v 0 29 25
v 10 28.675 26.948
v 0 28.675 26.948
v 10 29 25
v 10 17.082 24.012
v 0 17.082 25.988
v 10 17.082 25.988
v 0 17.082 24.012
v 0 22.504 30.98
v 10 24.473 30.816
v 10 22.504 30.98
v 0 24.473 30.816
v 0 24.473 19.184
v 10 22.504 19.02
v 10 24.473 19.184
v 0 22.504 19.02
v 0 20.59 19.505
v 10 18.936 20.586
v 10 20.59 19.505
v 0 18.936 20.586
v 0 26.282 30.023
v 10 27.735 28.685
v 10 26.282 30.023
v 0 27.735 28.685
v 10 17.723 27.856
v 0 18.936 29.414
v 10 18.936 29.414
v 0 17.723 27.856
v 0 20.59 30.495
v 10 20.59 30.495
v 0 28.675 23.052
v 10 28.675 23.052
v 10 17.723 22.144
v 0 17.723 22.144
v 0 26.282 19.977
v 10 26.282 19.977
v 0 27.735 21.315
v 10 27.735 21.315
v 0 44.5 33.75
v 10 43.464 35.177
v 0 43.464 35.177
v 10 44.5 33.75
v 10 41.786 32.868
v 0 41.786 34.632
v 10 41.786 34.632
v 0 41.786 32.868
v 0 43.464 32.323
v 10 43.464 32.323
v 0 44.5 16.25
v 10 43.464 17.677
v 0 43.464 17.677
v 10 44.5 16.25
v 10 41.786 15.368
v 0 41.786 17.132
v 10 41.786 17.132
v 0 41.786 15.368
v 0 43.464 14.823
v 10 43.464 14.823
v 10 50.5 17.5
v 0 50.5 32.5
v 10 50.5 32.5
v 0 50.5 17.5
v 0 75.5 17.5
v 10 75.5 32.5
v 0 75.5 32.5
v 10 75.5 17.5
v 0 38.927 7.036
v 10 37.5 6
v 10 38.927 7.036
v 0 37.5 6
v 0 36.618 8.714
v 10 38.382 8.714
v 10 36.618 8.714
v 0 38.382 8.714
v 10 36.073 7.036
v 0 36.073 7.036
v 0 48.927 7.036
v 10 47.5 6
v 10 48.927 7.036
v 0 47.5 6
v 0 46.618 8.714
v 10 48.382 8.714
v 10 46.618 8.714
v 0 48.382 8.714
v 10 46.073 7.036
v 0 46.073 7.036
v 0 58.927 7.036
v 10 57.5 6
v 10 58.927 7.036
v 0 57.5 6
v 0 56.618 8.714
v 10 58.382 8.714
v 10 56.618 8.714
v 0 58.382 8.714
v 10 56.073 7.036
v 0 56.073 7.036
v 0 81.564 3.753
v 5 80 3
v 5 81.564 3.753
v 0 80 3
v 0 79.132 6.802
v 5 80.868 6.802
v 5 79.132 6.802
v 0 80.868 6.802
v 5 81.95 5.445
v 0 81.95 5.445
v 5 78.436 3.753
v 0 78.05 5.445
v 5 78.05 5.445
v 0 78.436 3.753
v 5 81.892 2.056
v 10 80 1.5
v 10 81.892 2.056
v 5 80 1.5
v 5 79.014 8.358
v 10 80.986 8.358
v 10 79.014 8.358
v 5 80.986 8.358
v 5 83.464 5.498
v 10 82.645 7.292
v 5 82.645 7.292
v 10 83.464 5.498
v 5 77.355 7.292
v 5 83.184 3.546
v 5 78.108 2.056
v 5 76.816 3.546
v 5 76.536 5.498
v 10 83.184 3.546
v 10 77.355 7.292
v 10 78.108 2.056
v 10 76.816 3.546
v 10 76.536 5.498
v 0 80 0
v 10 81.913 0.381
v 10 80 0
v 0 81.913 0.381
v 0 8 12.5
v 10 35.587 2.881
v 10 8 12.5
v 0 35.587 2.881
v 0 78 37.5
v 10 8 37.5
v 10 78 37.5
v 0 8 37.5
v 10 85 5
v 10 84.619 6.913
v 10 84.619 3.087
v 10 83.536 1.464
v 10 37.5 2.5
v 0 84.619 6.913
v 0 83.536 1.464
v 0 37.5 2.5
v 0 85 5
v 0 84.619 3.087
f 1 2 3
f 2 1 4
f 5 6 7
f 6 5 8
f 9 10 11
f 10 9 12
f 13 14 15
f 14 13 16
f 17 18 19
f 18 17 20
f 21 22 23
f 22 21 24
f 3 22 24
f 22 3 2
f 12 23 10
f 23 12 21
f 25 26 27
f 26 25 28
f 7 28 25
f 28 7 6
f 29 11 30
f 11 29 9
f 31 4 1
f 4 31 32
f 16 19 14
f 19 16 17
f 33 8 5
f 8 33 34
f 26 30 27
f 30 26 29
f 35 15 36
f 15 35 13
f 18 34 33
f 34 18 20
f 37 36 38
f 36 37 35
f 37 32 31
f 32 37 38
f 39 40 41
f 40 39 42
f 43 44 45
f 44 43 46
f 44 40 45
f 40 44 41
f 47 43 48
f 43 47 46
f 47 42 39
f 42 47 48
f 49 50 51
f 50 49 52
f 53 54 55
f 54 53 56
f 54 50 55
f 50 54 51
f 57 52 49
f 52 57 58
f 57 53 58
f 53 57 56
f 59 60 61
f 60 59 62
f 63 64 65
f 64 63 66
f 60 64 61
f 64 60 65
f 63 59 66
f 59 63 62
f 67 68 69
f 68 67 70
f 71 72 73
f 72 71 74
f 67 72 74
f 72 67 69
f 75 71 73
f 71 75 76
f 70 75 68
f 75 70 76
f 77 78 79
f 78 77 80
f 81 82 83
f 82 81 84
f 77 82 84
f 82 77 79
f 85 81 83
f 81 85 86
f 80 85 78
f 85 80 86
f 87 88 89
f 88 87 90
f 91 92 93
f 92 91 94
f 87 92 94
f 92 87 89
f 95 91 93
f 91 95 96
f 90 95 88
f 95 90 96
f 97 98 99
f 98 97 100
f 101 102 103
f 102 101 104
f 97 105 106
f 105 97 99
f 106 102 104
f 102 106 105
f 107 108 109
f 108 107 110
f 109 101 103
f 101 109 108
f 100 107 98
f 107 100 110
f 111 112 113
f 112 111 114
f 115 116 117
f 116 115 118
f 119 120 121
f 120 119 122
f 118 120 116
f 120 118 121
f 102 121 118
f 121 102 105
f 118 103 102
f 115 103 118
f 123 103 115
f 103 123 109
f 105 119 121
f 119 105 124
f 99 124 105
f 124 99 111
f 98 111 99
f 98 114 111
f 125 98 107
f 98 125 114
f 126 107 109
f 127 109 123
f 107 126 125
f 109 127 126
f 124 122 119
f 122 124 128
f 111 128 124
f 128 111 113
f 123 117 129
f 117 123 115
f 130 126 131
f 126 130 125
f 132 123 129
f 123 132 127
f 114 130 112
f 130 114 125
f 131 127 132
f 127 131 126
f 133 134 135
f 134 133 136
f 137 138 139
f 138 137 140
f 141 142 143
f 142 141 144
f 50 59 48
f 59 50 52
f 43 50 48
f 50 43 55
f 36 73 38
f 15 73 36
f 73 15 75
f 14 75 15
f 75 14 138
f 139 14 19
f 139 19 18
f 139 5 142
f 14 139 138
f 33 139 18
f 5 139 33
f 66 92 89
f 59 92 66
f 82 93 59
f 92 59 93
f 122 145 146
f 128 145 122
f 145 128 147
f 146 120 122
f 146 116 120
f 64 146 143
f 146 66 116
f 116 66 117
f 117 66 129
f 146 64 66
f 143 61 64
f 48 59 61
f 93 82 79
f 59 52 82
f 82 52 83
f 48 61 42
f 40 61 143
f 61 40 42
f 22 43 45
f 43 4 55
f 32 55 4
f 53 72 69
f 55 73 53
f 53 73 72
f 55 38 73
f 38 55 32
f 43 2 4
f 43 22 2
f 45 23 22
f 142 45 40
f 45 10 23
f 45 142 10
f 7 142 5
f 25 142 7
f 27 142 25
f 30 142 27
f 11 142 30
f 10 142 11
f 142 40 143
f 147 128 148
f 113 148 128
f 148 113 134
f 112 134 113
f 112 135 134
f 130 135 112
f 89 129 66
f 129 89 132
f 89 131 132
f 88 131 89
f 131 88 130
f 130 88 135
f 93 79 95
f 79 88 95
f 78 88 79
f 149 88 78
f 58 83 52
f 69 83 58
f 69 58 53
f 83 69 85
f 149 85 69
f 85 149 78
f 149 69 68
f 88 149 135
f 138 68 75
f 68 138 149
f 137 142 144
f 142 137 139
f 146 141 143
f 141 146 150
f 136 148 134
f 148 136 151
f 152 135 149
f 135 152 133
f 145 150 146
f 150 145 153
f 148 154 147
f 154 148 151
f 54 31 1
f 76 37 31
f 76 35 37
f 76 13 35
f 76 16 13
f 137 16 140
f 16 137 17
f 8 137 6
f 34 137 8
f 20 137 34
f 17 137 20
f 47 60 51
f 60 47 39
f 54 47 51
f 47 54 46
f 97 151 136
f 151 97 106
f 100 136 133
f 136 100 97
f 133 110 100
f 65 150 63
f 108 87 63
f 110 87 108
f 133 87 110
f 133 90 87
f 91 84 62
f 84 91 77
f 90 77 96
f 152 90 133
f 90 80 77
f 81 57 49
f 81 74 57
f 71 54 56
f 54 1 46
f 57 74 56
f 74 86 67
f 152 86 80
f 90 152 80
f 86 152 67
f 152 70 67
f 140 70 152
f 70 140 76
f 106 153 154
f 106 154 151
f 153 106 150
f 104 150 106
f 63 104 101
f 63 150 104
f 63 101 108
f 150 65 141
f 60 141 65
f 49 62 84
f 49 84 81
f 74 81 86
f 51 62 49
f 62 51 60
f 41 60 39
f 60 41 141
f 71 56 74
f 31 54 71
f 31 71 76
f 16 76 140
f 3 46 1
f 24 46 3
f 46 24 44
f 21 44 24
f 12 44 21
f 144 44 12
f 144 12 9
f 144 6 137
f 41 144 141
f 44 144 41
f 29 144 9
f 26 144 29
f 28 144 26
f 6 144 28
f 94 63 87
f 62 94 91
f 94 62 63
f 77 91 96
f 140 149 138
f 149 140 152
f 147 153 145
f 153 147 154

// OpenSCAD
module articulated_base() {
	difference() {
		union() {
			hull() {
				cube([120, 105, 10]);
				translate([0, 0, 35])
					cube([120, 70, 10]);
			}
		}

		translate([4, 4, -0.1])
			cube([112, 105, 50]);

		#rotate([0, 90, 0]) {
			translate([-5, 100])
				cylinder(d = 4, h = 125);
			translate([-30, 20])
				cylinder(d = 7, h = 125);
			for(offset = [-17.5/2, 17.5/2])
				translate([offset - 30, 40])
					cylinder(d = 3, h = 125);

			for(x = [7.5:10:17.5])
				for(y = [7.5:10:87.5])
					translate([-x, y])
						cylinder(d = 3, h = 125);
		}

		for(z = [7.5:10:37.5])
			for(x = [5:10:120])
				translate([x, 0, z])
					rotate([-90, 0, 0])
						cylinder(d = 3, h = 5);
		
	}
}

module bar() {
	difference() {
		cube([130, 20, 5]);

		for(x = [5:10:145])
			for(y = [5:10:55])
				translate([x, y, z])
					cylinder(d = 3, h = 10);
	}
}

module sidePiece() {
	difference() {
		union() {
			hull() {
				translate([0, 100-20, 5]) 
					rotate([0, 90, 0])
						cylinder(d = 10, h = 10);
				translate([0, 5+3, -25/2 + 30 - 5])
					cube([10, 70, 25]);

				translate([0, 37.5, 7.5]) 
					rotate([0, 90, 0])
						cylinder(d = 10, h = 10);
			}
		}

		rotate([0, 90, 0]) {
			translate([-5, 100-20])
				cylinder(d = 4, h = 125);
			translate([-5, 100-20, 5])
				cylinder(d = 7, h = 6);
			for(y = [37.5:10:57.5])
				translate([-7.5, y])
					cylinder(d = 3, h = 125);
		}

		#translate([-1, 5+3, 30 - 5])
			rotate([90, 0, 90])
				union() {
					translate([15, 0])
						cylinder(d = 12, h = 12);

					translate([15+20, 17.5/2])
						cylinder(d = 3, h = 12);
					translate([15+20, -17.5/2])
						cylinder(d = 3, h = 12);

					translate([15+20+7.5, -15/2])
						cube([25, 15, 12]);
				}
	}
}

//bar();
sidePiece();
//articulated_base();
